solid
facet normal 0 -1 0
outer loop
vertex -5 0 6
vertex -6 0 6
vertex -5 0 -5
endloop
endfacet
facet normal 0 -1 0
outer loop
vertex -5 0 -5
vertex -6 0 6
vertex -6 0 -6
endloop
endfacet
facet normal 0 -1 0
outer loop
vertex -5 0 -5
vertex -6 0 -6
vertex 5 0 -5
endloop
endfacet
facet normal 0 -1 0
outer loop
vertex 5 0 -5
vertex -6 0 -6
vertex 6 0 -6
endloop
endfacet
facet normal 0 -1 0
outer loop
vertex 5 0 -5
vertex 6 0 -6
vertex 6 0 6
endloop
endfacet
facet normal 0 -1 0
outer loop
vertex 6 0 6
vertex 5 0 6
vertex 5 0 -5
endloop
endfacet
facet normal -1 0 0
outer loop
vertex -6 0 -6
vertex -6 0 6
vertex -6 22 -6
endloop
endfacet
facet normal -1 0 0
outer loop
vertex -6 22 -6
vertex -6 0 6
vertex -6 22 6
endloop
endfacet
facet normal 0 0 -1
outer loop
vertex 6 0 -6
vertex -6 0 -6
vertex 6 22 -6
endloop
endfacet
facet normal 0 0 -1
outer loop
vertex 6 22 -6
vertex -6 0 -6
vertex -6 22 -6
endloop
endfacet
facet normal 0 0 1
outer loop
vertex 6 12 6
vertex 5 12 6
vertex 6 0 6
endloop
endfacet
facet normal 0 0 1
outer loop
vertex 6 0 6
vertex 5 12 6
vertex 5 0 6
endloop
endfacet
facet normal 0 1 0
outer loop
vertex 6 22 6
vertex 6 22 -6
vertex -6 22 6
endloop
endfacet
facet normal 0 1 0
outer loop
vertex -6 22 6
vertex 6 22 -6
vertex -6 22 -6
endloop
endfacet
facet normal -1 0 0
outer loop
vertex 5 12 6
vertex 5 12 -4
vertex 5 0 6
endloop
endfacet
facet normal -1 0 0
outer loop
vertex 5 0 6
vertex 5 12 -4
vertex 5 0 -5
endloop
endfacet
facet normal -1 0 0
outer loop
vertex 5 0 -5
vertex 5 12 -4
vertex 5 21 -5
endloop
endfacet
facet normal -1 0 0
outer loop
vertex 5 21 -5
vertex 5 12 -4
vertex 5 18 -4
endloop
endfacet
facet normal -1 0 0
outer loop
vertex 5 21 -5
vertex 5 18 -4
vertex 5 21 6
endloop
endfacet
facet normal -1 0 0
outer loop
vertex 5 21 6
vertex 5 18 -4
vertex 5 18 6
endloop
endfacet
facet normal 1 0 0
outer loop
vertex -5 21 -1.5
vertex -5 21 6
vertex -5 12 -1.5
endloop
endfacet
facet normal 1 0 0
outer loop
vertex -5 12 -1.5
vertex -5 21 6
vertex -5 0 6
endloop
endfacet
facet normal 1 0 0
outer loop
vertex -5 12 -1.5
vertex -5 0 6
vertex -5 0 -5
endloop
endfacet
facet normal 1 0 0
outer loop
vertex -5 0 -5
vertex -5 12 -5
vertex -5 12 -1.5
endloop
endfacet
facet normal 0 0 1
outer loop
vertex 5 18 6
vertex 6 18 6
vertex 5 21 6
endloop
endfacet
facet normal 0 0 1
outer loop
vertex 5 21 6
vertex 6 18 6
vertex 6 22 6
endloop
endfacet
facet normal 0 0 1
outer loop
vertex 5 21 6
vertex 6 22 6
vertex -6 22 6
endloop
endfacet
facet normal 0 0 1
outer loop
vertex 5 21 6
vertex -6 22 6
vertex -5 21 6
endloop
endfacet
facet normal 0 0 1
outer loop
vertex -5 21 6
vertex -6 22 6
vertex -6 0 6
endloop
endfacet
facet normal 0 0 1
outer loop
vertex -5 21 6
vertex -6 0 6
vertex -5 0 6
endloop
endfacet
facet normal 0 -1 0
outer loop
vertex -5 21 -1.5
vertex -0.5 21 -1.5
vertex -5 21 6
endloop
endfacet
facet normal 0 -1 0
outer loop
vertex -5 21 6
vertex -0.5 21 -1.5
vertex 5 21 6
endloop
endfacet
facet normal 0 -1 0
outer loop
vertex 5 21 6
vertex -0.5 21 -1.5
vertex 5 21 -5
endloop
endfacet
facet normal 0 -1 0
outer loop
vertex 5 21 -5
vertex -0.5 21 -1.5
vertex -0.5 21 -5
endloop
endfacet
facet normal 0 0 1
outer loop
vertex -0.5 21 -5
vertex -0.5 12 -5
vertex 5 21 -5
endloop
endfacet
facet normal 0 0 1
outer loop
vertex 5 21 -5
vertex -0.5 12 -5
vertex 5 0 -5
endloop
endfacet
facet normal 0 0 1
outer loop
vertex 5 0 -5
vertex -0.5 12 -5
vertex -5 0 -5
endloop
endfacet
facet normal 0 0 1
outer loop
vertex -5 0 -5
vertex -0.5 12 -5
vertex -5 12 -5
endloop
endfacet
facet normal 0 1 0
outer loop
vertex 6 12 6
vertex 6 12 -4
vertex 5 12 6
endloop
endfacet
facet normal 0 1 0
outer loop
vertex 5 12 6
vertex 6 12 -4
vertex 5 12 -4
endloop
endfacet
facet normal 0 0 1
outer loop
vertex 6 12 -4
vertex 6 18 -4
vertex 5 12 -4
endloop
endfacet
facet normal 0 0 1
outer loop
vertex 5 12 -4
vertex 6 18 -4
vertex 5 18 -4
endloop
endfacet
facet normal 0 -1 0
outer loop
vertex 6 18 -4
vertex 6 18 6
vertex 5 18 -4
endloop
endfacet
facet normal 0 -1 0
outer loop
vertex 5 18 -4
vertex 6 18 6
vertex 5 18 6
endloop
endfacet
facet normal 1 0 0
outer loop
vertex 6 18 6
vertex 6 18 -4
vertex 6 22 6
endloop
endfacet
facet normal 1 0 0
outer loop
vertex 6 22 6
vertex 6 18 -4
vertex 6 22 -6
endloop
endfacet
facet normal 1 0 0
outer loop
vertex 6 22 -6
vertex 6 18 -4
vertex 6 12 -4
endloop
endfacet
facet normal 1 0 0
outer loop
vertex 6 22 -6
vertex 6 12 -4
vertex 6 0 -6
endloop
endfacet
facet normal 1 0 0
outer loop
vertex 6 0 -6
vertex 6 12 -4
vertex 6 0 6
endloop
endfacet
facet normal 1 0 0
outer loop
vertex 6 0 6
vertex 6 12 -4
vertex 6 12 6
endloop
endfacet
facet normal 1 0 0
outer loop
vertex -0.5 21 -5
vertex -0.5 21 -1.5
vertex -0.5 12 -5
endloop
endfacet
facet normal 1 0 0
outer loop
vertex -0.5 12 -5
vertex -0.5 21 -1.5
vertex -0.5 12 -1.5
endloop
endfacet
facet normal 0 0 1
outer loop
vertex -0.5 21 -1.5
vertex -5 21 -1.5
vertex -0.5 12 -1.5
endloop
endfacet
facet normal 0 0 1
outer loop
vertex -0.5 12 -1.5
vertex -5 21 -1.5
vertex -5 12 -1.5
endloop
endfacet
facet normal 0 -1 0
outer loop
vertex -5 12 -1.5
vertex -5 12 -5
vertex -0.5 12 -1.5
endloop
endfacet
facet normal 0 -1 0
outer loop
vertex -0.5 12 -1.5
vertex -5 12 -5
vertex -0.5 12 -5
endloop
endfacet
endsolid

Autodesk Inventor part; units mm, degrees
ref_plane "YZ Plane" through (0, 0, 0) normal (1, 0, 0) x (0, 1, 0)
ref_plane "XZ Plane" through (0, 0, 0) normal (0, 1, 0) x (-1, 0, 0)
ref_plane "XY Plane" through (0, 0, 0) normal (0, 0, 1) x (1, 0, 0)
sketch "Sketch1" plane through (0, 0, 0) normal (0, 1, 0) x (-1, 0, 0)
  line L0 (6, 6) -> (-6, 6)
  line L1 (-6, 6) -> (-6, -6)
  line L2 (-6, -6) -> (6, -6)
  line L3 (6, -6) -> (6, 6)
  line L4 (6, 6) -> (-6, -6) construction
  line L5 (-6, 6) -> (6, -6) construction
  point P0 (0, 0)
  dimension "d0" = 12
  dimension "d1" = 12
sketch "Sketch2" plane through (0, 0, 0) normal (0, 1, 0) x (-1, 0, 0)
  line L0 (5, -5) -> (-5, -5)
  line L1 (-5, -5) -> (-5, 15)
  line L2 (-5, 15) -> (5, 15)
  line L3 (5, 15) -> (5, -5)
  point P0 (0, 0)
  dimension "d2" = 10
  dimension "d3" = 20
extrude "Extrusion1" add sketch "Sketch1" along normal blind 22
extrude "Extrusion2" cut sketch "Sketch2" along normal blind 21
sketch "Sketch3" plane through (6, 0, 6) normal (1, 0, 0) x (0, 0, -1)
  line L0 (0, 0) -> (0, 22) projected
  line L1 (10, 18) -> (0, 18)
  line L2 (0, 18) -> (0, 12)
  line L3 (0, 12) -> (10, 12)
  line L4 (10, 12) -> (10, 18)
  point P0 (6, 0)
  dimension "d8" = 6
extrude "Extrusion3" cut sketch "Sketch3" against normal blind 1
sketch "Sketch4" plane through (0, 21, 0) normal (0, -1, 0) x (1, 0, 0)
  line L0 (-5, -5) -> (-5, 6) projected
  line L1 (-5, -5) -> (-0.5, -5)
  line L2 (-0.5, -5) -> (-0.5, -1.5)
  line L3 (-0.5, -1.5) -> (-5, -1.5)
  line L4 (-5, -1.5) -> (-5, -5)
  point P0 (0, 0)
  dimension "d11" = 4.5
  dimension "d12" = 3.5
extrude "Extrusion4" add sketch "Sketch4" along normal blind 9
properties part number "housing_v10"
